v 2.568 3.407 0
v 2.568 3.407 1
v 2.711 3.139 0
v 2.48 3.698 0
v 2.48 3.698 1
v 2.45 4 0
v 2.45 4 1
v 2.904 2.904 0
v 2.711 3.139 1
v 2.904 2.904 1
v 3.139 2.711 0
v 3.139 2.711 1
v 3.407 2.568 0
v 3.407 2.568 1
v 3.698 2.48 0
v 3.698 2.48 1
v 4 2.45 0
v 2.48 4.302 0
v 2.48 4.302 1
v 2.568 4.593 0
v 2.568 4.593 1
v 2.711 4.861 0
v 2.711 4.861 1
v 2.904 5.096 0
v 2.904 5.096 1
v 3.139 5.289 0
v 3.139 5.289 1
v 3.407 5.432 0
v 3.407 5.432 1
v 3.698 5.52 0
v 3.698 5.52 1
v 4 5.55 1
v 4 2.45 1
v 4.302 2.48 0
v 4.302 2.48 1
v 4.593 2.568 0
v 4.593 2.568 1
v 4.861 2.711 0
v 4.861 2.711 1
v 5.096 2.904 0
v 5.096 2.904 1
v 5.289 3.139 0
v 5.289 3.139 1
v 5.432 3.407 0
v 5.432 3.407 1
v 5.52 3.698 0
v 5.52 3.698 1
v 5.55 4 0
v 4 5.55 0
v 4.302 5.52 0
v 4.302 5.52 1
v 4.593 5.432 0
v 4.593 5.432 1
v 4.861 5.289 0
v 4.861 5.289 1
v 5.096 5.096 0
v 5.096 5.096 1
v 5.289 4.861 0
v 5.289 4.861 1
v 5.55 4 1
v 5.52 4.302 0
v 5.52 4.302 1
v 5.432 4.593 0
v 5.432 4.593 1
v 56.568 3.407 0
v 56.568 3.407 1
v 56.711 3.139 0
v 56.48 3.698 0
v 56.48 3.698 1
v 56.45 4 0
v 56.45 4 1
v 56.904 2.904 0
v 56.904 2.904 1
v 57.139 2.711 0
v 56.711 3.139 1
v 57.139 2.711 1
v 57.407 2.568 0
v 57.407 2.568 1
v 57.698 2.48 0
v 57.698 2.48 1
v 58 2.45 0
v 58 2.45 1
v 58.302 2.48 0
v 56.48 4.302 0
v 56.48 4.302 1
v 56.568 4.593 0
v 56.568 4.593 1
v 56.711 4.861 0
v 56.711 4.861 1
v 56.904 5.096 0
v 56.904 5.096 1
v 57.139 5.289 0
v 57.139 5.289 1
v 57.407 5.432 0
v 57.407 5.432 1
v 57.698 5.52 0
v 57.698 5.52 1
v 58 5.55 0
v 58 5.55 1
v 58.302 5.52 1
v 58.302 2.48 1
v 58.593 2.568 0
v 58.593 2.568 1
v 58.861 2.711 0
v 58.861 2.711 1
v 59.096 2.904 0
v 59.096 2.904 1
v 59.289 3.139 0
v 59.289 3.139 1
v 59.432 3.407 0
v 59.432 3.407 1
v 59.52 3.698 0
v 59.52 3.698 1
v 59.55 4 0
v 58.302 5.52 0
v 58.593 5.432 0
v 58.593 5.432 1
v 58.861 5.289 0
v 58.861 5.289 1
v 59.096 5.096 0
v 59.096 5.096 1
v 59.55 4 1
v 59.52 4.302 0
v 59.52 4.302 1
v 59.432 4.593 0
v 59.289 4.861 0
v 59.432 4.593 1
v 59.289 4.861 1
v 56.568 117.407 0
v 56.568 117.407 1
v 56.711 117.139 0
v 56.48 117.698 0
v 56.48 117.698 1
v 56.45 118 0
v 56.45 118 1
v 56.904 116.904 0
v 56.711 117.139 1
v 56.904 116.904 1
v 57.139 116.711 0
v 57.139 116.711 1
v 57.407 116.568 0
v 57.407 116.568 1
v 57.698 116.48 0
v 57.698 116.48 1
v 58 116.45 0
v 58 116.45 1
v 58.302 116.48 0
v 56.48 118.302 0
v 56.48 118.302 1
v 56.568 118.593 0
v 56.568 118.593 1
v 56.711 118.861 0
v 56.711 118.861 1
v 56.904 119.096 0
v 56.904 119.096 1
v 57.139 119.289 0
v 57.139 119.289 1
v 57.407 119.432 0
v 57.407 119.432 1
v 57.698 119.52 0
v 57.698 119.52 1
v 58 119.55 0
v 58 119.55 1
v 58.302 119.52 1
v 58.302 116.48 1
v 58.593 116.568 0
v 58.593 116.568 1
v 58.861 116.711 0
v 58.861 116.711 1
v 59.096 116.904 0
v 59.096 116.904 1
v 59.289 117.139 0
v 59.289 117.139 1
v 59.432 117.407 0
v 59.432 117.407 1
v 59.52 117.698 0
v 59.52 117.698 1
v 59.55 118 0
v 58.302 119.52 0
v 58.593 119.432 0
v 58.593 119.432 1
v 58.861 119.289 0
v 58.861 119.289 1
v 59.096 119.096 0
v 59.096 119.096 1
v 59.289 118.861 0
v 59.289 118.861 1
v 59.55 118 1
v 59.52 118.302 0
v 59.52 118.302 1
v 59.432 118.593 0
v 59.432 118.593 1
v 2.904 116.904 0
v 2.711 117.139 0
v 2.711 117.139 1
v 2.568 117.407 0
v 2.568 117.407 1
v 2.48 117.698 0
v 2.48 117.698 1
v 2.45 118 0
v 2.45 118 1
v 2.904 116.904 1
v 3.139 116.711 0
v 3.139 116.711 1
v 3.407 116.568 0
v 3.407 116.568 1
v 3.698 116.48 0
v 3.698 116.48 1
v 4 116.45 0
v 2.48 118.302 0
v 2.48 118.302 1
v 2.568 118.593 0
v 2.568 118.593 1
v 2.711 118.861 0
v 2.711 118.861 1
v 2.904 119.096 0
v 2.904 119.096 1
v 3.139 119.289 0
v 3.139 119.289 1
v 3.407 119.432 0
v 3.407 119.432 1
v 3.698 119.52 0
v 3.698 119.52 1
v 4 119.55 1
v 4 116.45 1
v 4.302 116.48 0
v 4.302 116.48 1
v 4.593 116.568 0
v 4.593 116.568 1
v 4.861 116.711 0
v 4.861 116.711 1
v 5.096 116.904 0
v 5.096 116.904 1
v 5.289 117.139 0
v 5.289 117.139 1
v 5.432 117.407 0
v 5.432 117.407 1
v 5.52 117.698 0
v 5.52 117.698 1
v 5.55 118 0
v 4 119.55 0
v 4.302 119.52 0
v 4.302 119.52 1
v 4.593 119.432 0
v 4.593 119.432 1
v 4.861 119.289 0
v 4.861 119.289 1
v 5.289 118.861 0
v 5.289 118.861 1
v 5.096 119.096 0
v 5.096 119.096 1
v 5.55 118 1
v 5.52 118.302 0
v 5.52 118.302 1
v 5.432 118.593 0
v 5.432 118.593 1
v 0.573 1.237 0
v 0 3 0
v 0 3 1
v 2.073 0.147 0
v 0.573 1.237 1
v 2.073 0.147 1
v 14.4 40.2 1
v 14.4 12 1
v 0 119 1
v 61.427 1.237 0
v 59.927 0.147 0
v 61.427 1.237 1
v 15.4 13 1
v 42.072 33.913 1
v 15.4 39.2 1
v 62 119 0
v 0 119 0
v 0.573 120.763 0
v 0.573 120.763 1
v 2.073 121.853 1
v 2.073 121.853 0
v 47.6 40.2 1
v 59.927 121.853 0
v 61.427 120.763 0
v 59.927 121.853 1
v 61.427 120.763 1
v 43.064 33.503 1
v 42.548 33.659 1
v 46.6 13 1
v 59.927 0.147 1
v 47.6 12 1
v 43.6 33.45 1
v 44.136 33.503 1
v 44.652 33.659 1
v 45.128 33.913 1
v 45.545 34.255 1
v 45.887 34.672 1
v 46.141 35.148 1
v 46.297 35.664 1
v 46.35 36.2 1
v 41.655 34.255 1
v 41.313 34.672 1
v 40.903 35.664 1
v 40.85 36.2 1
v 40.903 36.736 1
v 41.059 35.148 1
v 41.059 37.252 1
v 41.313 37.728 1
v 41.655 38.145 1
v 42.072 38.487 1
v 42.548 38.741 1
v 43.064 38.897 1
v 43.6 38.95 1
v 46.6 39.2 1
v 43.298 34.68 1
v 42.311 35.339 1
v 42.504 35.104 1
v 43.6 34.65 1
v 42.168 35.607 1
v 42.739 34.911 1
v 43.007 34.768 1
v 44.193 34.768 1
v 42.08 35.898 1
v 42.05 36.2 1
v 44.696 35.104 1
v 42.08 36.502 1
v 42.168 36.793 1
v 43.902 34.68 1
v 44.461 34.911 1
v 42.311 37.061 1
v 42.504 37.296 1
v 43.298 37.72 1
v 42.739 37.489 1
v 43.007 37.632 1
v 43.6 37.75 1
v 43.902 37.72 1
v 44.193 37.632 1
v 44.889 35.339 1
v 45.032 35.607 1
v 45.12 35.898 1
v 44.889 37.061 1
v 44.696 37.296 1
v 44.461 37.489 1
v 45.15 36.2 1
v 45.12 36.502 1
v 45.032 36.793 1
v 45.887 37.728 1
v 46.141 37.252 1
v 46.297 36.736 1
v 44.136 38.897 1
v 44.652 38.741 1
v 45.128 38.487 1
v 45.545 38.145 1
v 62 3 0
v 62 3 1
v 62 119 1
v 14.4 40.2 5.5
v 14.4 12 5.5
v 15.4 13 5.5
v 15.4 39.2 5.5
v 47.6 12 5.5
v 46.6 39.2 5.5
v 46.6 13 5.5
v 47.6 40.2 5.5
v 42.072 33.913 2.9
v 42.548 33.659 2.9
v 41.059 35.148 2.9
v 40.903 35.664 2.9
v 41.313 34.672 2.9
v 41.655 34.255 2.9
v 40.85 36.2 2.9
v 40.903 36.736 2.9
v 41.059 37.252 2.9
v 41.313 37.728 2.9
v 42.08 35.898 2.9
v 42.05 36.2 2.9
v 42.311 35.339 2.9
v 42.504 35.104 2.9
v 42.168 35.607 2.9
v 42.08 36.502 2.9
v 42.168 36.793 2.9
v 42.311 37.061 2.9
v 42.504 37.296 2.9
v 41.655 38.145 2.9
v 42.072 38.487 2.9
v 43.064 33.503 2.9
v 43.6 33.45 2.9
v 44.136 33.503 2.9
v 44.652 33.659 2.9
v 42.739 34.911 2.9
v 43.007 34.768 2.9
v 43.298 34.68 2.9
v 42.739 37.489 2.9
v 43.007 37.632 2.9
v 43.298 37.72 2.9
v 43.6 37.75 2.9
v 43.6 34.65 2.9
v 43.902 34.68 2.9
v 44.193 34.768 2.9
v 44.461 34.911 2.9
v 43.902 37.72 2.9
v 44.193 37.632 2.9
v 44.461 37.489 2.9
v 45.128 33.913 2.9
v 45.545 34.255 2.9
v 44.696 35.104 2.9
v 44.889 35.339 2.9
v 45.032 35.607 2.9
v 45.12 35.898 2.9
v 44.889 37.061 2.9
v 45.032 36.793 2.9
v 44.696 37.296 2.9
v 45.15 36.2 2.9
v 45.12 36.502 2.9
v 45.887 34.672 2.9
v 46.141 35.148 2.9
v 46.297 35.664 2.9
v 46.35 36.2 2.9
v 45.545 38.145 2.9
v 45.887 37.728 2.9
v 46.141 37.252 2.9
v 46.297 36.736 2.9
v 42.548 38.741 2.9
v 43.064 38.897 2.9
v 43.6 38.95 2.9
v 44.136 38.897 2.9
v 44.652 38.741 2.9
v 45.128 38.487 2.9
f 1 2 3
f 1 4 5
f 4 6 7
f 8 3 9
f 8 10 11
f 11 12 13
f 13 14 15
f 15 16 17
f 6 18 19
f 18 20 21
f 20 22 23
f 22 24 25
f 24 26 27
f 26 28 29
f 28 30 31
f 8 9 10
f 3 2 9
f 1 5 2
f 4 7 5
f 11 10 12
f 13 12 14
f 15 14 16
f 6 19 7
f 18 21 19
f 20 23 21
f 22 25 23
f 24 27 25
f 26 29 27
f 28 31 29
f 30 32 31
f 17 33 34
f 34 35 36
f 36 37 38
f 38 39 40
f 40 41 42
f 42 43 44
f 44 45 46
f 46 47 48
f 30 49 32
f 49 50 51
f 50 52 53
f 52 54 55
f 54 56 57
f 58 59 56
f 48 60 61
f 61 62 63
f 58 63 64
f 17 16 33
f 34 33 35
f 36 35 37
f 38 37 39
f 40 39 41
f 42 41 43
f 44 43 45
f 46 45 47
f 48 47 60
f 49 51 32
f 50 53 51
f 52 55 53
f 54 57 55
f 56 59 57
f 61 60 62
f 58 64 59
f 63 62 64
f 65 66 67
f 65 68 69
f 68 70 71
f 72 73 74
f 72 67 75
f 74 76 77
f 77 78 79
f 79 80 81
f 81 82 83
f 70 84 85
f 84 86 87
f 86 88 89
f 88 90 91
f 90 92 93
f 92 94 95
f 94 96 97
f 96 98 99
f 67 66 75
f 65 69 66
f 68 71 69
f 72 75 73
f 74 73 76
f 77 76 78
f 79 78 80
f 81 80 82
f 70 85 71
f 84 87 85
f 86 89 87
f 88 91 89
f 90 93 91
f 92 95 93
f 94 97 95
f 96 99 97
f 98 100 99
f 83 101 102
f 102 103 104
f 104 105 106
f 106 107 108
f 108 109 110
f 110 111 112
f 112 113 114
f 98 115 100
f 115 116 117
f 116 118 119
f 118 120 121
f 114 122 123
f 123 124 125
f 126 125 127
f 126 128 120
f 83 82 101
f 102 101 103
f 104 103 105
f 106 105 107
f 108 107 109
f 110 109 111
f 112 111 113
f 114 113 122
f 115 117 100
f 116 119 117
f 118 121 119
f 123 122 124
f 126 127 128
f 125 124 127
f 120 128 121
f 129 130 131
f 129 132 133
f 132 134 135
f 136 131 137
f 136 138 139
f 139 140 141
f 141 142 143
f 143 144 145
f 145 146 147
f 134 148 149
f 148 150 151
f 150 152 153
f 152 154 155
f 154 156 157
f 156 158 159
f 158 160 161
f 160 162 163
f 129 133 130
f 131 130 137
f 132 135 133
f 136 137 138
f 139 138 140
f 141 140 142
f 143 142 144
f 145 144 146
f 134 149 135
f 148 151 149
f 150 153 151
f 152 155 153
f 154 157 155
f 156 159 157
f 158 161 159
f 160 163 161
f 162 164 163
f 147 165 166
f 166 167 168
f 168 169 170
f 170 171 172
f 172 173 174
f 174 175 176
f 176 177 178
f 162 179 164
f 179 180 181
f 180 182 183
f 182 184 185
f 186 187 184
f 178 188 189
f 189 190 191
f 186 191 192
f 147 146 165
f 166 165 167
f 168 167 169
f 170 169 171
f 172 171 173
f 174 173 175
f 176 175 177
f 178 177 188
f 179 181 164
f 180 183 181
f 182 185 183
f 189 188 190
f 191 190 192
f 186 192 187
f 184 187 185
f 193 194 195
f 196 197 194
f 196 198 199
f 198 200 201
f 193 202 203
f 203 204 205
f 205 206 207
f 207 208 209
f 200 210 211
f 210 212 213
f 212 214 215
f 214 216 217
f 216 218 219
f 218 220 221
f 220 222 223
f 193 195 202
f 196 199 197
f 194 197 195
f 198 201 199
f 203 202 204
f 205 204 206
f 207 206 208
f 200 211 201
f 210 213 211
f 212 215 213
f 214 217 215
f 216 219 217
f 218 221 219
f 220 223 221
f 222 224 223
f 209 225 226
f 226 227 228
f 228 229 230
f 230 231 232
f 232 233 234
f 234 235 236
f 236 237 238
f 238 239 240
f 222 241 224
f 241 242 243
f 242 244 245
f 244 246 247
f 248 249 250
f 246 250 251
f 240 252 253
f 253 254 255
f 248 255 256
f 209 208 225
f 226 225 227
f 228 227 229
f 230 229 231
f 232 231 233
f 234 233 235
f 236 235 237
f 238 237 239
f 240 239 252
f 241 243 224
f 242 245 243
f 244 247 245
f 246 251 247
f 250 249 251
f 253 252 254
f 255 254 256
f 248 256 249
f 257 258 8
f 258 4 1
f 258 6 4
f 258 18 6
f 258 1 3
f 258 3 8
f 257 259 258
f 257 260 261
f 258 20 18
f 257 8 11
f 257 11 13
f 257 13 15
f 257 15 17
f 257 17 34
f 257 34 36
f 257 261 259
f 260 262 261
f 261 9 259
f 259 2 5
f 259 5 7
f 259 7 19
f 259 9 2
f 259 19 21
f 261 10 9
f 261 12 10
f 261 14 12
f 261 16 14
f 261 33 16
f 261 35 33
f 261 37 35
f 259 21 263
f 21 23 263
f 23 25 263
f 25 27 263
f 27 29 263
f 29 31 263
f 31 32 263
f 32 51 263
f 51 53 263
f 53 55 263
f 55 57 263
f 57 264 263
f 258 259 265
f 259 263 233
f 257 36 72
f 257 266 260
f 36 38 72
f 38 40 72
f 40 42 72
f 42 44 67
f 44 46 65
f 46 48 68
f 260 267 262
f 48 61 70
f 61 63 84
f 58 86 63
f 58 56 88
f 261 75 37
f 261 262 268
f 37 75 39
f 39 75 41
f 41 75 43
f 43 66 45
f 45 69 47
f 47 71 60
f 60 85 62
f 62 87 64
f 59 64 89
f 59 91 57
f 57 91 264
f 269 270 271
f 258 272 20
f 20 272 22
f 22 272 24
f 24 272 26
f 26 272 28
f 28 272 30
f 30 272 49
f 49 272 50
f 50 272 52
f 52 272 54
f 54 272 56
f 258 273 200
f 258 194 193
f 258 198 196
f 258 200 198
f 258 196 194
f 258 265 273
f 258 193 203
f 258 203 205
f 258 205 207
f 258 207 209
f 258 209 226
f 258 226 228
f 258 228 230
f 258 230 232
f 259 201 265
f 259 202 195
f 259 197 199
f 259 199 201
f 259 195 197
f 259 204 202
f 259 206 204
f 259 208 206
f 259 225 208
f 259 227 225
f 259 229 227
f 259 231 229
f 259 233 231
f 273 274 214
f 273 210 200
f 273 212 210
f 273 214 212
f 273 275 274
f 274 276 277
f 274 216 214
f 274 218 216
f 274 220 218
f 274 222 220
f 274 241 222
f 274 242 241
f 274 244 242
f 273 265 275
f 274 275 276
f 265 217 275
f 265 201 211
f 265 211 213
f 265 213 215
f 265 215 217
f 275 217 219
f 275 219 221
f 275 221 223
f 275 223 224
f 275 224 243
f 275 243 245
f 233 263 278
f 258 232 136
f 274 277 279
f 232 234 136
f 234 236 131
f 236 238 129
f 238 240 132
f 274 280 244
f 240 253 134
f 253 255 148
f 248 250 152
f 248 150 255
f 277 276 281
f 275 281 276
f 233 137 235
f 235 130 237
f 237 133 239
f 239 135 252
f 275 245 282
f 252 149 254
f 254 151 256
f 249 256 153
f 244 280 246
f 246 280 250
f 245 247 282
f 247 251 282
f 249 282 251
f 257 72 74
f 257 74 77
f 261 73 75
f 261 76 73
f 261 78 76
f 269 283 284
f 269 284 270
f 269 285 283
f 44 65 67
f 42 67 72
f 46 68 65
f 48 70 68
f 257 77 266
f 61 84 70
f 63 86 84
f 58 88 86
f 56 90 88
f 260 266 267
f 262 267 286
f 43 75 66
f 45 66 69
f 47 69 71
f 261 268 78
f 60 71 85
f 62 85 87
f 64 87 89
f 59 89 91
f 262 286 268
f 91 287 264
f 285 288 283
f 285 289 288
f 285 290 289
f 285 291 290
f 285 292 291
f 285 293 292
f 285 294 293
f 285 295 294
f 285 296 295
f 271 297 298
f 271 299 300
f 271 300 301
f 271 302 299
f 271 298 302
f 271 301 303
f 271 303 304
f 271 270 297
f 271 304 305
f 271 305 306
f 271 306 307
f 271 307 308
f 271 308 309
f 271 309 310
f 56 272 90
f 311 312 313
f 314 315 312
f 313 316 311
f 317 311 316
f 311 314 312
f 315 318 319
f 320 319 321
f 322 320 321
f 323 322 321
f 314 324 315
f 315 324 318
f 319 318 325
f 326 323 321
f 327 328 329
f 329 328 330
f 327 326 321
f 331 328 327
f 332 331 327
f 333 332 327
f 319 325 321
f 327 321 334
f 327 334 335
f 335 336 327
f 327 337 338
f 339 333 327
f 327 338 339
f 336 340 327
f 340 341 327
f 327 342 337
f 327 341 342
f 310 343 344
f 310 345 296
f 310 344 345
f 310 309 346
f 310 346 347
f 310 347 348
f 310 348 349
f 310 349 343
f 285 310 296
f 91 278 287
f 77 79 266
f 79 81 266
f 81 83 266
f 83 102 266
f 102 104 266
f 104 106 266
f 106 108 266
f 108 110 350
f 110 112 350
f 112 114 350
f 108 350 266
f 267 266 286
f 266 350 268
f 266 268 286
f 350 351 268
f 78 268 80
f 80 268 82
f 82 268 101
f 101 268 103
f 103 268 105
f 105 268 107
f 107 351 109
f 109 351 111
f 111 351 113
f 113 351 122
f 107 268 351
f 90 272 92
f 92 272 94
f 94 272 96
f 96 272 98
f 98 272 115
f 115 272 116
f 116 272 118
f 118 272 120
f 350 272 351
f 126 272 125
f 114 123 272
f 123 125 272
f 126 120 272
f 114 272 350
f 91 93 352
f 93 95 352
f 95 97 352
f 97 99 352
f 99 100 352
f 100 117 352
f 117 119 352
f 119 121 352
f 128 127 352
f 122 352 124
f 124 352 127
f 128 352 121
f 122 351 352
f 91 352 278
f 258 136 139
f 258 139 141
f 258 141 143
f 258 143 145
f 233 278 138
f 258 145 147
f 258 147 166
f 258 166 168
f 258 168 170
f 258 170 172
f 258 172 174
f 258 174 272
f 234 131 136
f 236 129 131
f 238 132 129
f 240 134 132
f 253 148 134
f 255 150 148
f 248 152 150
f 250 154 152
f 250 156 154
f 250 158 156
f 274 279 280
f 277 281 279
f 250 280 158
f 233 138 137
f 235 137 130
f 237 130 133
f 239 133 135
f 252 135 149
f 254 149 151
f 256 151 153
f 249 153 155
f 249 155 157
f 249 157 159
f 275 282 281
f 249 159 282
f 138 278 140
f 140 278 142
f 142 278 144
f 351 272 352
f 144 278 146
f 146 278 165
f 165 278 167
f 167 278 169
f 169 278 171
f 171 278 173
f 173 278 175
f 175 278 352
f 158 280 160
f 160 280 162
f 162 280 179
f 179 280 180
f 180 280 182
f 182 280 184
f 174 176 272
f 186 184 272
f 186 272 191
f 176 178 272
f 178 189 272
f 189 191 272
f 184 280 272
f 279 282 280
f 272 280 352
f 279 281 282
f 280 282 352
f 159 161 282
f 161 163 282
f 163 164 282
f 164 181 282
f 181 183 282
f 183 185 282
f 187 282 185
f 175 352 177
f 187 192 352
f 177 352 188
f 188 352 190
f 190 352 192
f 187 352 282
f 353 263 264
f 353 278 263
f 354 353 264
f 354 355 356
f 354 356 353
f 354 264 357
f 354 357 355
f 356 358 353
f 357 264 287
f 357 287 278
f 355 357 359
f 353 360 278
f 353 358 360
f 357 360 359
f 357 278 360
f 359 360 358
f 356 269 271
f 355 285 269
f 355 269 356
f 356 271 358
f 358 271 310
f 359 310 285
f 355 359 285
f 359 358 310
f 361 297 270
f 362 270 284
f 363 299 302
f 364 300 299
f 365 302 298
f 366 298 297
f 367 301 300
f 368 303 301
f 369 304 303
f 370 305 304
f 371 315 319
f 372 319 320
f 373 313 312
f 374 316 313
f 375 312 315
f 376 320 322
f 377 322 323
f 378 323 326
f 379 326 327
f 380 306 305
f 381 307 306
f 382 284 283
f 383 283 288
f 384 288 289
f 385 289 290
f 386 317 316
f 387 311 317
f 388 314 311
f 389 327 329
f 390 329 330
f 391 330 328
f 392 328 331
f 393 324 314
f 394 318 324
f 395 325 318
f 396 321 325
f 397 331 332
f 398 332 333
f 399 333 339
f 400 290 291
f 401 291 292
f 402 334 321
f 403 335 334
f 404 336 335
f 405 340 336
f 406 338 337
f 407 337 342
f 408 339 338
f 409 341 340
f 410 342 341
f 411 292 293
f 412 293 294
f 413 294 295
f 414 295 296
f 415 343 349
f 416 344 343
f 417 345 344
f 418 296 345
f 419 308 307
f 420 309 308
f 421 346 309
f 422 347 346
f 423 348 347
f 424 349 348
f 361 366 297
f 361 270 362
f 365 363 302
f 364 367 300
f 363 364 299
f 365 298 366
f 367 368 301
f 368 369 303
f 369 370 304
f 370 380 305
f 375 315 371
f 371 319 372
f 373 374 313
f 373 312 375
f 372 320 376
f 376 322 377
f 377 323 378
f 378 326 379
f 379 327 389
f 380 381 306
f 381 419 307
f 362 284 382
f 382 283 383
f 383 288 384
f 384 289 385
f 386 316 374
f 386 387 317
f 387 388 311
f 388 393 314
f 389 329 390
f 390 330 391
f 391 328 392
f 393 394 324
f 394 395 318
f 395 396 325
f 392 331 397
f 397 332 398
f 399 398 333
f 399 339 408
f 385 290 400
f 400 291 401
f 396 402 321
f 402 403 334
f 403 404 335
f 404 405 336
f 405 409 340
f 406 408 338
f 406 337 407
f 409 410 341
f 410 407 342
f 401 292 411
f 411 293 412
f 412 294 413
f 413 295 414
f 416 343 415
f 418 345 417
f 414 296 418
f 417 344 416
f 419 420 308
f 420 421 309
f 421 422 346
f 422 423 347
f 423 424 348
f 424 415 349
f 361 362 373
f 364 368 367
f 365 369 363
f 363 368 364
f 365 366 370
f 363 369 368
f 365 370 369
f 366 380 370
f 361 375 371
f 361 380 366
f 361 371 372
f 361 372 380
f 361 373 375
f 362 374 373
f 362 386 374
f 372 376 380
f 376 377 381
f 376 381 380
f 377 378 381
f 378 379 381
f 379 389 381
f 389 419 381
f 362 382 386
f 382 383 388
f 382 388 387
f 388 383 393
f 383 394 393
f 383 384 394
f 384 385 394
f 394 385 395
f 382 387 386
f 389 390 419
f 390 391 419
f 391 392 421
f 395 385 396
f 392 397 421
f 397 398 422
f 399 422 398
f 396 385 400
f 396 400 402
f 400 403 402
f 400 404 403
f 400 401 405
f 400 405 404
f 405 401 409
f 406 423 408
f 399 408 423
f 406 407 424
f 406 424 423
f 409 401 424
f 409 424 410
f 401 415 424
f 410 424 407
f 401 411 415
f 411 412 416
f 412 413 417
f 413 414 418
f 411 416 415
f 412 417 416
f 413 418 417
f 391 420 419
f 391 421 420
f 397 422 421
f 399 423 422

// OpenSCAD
board_length = 100;
board_width = 60;
height = 2;
tube_diameter = 25;

regulator_length = 26.2;
regulator_width = 31.2;

wall = 1;

enclosure_width = board_width;
enclosure_length = enclosure_width * 2;
enclosure_height = board_width;
enclosure_leg_height = 20;
regulator_leg_height = 2;
board_leg_height = regulator_leg_height + 13;

module leg(leg_height = 8) {
  difference() {
    cylinder(h=leg_height, d=5.5, $fn=32);

    color("#b1a531") cylinder(h=leg_height + 1, d=3.1, $fn=32);
  }
}

module cutout(leg_height = 8) {
  cylinder(h=leg_height, d=3.1, $fn=32);
}

module board() {
  // color("#4f7270") cube([ board_width, board_length, height ]);

}

module tube() {
  translate([board_width / 2, 0, height]) color("#d6a731")
      cylinder(h=45, d=tube_diameter, $fn=32);
}

module tubes() {
  k = 10;
  translate([0, enclosure_length / k * 1.3]) tube();
  translate([0, enclosure_length / k * 3.5]) tube();

  translate([0, enclosure_length / k * 6.5]) tube();
  translate([0, enclosure_length / k * 8.7]) tube();
}

module regulator() {
  difference() {
    cube([regulator_width + wall * 2, regulator_length + wall * 2, 4.5]);
    translate([wall, wall, -1])
      cube([regulator_width, regulator_length, 20]);
  }
  translate([wall + regulator_width - 3, regulator_length - 3 + wall, -0.1])
    color("#b1a531") leg(regulator_leg_height);
}

module rounded_box(size = [10, 10, 5], r = 3) {
  translate([size[0] / 2, size[1] / 2, 0]) {
    linear_extrude(height=size[2]) {
      minkowski() {
        square([size[0] - 2 * r, size[1] - 2 * r], center=true);
        circle(r=r);
      }
    }
  }
}

module enclosure() {
  difference() {
    color("#2f2270") rounded_box(
        [board_width + wall * 2, enclosure_length + wall * 2, wall]
      );
    translate([wall, wall,-1]) {
      translate([3, 3, 0]) color("#b1a531") cutout(enclosure_leg_height);
      translate([enclosure_width - 3, 3, 0]) color("#b1a531")
        cutout(enclosure_leg_height);
      translate([enclosure_width - 3, enclosure_length - 3, 0]) color("#b1a531")
        cutout(enclosure_leg_height);
      translate([3, enclosure_length - 3, 0]) color("#b1a531")
        cutout(enclosure_leg_height);
    }
  }

}

enclosure();

translate([(board_width - regulator_width) / 2, wall * 2 + 10, wall]) regulator();

// tubes();
translate([wall, enclosure_length / 2 - board_length / 2 + wall, 0.1]) {
  board();
}
